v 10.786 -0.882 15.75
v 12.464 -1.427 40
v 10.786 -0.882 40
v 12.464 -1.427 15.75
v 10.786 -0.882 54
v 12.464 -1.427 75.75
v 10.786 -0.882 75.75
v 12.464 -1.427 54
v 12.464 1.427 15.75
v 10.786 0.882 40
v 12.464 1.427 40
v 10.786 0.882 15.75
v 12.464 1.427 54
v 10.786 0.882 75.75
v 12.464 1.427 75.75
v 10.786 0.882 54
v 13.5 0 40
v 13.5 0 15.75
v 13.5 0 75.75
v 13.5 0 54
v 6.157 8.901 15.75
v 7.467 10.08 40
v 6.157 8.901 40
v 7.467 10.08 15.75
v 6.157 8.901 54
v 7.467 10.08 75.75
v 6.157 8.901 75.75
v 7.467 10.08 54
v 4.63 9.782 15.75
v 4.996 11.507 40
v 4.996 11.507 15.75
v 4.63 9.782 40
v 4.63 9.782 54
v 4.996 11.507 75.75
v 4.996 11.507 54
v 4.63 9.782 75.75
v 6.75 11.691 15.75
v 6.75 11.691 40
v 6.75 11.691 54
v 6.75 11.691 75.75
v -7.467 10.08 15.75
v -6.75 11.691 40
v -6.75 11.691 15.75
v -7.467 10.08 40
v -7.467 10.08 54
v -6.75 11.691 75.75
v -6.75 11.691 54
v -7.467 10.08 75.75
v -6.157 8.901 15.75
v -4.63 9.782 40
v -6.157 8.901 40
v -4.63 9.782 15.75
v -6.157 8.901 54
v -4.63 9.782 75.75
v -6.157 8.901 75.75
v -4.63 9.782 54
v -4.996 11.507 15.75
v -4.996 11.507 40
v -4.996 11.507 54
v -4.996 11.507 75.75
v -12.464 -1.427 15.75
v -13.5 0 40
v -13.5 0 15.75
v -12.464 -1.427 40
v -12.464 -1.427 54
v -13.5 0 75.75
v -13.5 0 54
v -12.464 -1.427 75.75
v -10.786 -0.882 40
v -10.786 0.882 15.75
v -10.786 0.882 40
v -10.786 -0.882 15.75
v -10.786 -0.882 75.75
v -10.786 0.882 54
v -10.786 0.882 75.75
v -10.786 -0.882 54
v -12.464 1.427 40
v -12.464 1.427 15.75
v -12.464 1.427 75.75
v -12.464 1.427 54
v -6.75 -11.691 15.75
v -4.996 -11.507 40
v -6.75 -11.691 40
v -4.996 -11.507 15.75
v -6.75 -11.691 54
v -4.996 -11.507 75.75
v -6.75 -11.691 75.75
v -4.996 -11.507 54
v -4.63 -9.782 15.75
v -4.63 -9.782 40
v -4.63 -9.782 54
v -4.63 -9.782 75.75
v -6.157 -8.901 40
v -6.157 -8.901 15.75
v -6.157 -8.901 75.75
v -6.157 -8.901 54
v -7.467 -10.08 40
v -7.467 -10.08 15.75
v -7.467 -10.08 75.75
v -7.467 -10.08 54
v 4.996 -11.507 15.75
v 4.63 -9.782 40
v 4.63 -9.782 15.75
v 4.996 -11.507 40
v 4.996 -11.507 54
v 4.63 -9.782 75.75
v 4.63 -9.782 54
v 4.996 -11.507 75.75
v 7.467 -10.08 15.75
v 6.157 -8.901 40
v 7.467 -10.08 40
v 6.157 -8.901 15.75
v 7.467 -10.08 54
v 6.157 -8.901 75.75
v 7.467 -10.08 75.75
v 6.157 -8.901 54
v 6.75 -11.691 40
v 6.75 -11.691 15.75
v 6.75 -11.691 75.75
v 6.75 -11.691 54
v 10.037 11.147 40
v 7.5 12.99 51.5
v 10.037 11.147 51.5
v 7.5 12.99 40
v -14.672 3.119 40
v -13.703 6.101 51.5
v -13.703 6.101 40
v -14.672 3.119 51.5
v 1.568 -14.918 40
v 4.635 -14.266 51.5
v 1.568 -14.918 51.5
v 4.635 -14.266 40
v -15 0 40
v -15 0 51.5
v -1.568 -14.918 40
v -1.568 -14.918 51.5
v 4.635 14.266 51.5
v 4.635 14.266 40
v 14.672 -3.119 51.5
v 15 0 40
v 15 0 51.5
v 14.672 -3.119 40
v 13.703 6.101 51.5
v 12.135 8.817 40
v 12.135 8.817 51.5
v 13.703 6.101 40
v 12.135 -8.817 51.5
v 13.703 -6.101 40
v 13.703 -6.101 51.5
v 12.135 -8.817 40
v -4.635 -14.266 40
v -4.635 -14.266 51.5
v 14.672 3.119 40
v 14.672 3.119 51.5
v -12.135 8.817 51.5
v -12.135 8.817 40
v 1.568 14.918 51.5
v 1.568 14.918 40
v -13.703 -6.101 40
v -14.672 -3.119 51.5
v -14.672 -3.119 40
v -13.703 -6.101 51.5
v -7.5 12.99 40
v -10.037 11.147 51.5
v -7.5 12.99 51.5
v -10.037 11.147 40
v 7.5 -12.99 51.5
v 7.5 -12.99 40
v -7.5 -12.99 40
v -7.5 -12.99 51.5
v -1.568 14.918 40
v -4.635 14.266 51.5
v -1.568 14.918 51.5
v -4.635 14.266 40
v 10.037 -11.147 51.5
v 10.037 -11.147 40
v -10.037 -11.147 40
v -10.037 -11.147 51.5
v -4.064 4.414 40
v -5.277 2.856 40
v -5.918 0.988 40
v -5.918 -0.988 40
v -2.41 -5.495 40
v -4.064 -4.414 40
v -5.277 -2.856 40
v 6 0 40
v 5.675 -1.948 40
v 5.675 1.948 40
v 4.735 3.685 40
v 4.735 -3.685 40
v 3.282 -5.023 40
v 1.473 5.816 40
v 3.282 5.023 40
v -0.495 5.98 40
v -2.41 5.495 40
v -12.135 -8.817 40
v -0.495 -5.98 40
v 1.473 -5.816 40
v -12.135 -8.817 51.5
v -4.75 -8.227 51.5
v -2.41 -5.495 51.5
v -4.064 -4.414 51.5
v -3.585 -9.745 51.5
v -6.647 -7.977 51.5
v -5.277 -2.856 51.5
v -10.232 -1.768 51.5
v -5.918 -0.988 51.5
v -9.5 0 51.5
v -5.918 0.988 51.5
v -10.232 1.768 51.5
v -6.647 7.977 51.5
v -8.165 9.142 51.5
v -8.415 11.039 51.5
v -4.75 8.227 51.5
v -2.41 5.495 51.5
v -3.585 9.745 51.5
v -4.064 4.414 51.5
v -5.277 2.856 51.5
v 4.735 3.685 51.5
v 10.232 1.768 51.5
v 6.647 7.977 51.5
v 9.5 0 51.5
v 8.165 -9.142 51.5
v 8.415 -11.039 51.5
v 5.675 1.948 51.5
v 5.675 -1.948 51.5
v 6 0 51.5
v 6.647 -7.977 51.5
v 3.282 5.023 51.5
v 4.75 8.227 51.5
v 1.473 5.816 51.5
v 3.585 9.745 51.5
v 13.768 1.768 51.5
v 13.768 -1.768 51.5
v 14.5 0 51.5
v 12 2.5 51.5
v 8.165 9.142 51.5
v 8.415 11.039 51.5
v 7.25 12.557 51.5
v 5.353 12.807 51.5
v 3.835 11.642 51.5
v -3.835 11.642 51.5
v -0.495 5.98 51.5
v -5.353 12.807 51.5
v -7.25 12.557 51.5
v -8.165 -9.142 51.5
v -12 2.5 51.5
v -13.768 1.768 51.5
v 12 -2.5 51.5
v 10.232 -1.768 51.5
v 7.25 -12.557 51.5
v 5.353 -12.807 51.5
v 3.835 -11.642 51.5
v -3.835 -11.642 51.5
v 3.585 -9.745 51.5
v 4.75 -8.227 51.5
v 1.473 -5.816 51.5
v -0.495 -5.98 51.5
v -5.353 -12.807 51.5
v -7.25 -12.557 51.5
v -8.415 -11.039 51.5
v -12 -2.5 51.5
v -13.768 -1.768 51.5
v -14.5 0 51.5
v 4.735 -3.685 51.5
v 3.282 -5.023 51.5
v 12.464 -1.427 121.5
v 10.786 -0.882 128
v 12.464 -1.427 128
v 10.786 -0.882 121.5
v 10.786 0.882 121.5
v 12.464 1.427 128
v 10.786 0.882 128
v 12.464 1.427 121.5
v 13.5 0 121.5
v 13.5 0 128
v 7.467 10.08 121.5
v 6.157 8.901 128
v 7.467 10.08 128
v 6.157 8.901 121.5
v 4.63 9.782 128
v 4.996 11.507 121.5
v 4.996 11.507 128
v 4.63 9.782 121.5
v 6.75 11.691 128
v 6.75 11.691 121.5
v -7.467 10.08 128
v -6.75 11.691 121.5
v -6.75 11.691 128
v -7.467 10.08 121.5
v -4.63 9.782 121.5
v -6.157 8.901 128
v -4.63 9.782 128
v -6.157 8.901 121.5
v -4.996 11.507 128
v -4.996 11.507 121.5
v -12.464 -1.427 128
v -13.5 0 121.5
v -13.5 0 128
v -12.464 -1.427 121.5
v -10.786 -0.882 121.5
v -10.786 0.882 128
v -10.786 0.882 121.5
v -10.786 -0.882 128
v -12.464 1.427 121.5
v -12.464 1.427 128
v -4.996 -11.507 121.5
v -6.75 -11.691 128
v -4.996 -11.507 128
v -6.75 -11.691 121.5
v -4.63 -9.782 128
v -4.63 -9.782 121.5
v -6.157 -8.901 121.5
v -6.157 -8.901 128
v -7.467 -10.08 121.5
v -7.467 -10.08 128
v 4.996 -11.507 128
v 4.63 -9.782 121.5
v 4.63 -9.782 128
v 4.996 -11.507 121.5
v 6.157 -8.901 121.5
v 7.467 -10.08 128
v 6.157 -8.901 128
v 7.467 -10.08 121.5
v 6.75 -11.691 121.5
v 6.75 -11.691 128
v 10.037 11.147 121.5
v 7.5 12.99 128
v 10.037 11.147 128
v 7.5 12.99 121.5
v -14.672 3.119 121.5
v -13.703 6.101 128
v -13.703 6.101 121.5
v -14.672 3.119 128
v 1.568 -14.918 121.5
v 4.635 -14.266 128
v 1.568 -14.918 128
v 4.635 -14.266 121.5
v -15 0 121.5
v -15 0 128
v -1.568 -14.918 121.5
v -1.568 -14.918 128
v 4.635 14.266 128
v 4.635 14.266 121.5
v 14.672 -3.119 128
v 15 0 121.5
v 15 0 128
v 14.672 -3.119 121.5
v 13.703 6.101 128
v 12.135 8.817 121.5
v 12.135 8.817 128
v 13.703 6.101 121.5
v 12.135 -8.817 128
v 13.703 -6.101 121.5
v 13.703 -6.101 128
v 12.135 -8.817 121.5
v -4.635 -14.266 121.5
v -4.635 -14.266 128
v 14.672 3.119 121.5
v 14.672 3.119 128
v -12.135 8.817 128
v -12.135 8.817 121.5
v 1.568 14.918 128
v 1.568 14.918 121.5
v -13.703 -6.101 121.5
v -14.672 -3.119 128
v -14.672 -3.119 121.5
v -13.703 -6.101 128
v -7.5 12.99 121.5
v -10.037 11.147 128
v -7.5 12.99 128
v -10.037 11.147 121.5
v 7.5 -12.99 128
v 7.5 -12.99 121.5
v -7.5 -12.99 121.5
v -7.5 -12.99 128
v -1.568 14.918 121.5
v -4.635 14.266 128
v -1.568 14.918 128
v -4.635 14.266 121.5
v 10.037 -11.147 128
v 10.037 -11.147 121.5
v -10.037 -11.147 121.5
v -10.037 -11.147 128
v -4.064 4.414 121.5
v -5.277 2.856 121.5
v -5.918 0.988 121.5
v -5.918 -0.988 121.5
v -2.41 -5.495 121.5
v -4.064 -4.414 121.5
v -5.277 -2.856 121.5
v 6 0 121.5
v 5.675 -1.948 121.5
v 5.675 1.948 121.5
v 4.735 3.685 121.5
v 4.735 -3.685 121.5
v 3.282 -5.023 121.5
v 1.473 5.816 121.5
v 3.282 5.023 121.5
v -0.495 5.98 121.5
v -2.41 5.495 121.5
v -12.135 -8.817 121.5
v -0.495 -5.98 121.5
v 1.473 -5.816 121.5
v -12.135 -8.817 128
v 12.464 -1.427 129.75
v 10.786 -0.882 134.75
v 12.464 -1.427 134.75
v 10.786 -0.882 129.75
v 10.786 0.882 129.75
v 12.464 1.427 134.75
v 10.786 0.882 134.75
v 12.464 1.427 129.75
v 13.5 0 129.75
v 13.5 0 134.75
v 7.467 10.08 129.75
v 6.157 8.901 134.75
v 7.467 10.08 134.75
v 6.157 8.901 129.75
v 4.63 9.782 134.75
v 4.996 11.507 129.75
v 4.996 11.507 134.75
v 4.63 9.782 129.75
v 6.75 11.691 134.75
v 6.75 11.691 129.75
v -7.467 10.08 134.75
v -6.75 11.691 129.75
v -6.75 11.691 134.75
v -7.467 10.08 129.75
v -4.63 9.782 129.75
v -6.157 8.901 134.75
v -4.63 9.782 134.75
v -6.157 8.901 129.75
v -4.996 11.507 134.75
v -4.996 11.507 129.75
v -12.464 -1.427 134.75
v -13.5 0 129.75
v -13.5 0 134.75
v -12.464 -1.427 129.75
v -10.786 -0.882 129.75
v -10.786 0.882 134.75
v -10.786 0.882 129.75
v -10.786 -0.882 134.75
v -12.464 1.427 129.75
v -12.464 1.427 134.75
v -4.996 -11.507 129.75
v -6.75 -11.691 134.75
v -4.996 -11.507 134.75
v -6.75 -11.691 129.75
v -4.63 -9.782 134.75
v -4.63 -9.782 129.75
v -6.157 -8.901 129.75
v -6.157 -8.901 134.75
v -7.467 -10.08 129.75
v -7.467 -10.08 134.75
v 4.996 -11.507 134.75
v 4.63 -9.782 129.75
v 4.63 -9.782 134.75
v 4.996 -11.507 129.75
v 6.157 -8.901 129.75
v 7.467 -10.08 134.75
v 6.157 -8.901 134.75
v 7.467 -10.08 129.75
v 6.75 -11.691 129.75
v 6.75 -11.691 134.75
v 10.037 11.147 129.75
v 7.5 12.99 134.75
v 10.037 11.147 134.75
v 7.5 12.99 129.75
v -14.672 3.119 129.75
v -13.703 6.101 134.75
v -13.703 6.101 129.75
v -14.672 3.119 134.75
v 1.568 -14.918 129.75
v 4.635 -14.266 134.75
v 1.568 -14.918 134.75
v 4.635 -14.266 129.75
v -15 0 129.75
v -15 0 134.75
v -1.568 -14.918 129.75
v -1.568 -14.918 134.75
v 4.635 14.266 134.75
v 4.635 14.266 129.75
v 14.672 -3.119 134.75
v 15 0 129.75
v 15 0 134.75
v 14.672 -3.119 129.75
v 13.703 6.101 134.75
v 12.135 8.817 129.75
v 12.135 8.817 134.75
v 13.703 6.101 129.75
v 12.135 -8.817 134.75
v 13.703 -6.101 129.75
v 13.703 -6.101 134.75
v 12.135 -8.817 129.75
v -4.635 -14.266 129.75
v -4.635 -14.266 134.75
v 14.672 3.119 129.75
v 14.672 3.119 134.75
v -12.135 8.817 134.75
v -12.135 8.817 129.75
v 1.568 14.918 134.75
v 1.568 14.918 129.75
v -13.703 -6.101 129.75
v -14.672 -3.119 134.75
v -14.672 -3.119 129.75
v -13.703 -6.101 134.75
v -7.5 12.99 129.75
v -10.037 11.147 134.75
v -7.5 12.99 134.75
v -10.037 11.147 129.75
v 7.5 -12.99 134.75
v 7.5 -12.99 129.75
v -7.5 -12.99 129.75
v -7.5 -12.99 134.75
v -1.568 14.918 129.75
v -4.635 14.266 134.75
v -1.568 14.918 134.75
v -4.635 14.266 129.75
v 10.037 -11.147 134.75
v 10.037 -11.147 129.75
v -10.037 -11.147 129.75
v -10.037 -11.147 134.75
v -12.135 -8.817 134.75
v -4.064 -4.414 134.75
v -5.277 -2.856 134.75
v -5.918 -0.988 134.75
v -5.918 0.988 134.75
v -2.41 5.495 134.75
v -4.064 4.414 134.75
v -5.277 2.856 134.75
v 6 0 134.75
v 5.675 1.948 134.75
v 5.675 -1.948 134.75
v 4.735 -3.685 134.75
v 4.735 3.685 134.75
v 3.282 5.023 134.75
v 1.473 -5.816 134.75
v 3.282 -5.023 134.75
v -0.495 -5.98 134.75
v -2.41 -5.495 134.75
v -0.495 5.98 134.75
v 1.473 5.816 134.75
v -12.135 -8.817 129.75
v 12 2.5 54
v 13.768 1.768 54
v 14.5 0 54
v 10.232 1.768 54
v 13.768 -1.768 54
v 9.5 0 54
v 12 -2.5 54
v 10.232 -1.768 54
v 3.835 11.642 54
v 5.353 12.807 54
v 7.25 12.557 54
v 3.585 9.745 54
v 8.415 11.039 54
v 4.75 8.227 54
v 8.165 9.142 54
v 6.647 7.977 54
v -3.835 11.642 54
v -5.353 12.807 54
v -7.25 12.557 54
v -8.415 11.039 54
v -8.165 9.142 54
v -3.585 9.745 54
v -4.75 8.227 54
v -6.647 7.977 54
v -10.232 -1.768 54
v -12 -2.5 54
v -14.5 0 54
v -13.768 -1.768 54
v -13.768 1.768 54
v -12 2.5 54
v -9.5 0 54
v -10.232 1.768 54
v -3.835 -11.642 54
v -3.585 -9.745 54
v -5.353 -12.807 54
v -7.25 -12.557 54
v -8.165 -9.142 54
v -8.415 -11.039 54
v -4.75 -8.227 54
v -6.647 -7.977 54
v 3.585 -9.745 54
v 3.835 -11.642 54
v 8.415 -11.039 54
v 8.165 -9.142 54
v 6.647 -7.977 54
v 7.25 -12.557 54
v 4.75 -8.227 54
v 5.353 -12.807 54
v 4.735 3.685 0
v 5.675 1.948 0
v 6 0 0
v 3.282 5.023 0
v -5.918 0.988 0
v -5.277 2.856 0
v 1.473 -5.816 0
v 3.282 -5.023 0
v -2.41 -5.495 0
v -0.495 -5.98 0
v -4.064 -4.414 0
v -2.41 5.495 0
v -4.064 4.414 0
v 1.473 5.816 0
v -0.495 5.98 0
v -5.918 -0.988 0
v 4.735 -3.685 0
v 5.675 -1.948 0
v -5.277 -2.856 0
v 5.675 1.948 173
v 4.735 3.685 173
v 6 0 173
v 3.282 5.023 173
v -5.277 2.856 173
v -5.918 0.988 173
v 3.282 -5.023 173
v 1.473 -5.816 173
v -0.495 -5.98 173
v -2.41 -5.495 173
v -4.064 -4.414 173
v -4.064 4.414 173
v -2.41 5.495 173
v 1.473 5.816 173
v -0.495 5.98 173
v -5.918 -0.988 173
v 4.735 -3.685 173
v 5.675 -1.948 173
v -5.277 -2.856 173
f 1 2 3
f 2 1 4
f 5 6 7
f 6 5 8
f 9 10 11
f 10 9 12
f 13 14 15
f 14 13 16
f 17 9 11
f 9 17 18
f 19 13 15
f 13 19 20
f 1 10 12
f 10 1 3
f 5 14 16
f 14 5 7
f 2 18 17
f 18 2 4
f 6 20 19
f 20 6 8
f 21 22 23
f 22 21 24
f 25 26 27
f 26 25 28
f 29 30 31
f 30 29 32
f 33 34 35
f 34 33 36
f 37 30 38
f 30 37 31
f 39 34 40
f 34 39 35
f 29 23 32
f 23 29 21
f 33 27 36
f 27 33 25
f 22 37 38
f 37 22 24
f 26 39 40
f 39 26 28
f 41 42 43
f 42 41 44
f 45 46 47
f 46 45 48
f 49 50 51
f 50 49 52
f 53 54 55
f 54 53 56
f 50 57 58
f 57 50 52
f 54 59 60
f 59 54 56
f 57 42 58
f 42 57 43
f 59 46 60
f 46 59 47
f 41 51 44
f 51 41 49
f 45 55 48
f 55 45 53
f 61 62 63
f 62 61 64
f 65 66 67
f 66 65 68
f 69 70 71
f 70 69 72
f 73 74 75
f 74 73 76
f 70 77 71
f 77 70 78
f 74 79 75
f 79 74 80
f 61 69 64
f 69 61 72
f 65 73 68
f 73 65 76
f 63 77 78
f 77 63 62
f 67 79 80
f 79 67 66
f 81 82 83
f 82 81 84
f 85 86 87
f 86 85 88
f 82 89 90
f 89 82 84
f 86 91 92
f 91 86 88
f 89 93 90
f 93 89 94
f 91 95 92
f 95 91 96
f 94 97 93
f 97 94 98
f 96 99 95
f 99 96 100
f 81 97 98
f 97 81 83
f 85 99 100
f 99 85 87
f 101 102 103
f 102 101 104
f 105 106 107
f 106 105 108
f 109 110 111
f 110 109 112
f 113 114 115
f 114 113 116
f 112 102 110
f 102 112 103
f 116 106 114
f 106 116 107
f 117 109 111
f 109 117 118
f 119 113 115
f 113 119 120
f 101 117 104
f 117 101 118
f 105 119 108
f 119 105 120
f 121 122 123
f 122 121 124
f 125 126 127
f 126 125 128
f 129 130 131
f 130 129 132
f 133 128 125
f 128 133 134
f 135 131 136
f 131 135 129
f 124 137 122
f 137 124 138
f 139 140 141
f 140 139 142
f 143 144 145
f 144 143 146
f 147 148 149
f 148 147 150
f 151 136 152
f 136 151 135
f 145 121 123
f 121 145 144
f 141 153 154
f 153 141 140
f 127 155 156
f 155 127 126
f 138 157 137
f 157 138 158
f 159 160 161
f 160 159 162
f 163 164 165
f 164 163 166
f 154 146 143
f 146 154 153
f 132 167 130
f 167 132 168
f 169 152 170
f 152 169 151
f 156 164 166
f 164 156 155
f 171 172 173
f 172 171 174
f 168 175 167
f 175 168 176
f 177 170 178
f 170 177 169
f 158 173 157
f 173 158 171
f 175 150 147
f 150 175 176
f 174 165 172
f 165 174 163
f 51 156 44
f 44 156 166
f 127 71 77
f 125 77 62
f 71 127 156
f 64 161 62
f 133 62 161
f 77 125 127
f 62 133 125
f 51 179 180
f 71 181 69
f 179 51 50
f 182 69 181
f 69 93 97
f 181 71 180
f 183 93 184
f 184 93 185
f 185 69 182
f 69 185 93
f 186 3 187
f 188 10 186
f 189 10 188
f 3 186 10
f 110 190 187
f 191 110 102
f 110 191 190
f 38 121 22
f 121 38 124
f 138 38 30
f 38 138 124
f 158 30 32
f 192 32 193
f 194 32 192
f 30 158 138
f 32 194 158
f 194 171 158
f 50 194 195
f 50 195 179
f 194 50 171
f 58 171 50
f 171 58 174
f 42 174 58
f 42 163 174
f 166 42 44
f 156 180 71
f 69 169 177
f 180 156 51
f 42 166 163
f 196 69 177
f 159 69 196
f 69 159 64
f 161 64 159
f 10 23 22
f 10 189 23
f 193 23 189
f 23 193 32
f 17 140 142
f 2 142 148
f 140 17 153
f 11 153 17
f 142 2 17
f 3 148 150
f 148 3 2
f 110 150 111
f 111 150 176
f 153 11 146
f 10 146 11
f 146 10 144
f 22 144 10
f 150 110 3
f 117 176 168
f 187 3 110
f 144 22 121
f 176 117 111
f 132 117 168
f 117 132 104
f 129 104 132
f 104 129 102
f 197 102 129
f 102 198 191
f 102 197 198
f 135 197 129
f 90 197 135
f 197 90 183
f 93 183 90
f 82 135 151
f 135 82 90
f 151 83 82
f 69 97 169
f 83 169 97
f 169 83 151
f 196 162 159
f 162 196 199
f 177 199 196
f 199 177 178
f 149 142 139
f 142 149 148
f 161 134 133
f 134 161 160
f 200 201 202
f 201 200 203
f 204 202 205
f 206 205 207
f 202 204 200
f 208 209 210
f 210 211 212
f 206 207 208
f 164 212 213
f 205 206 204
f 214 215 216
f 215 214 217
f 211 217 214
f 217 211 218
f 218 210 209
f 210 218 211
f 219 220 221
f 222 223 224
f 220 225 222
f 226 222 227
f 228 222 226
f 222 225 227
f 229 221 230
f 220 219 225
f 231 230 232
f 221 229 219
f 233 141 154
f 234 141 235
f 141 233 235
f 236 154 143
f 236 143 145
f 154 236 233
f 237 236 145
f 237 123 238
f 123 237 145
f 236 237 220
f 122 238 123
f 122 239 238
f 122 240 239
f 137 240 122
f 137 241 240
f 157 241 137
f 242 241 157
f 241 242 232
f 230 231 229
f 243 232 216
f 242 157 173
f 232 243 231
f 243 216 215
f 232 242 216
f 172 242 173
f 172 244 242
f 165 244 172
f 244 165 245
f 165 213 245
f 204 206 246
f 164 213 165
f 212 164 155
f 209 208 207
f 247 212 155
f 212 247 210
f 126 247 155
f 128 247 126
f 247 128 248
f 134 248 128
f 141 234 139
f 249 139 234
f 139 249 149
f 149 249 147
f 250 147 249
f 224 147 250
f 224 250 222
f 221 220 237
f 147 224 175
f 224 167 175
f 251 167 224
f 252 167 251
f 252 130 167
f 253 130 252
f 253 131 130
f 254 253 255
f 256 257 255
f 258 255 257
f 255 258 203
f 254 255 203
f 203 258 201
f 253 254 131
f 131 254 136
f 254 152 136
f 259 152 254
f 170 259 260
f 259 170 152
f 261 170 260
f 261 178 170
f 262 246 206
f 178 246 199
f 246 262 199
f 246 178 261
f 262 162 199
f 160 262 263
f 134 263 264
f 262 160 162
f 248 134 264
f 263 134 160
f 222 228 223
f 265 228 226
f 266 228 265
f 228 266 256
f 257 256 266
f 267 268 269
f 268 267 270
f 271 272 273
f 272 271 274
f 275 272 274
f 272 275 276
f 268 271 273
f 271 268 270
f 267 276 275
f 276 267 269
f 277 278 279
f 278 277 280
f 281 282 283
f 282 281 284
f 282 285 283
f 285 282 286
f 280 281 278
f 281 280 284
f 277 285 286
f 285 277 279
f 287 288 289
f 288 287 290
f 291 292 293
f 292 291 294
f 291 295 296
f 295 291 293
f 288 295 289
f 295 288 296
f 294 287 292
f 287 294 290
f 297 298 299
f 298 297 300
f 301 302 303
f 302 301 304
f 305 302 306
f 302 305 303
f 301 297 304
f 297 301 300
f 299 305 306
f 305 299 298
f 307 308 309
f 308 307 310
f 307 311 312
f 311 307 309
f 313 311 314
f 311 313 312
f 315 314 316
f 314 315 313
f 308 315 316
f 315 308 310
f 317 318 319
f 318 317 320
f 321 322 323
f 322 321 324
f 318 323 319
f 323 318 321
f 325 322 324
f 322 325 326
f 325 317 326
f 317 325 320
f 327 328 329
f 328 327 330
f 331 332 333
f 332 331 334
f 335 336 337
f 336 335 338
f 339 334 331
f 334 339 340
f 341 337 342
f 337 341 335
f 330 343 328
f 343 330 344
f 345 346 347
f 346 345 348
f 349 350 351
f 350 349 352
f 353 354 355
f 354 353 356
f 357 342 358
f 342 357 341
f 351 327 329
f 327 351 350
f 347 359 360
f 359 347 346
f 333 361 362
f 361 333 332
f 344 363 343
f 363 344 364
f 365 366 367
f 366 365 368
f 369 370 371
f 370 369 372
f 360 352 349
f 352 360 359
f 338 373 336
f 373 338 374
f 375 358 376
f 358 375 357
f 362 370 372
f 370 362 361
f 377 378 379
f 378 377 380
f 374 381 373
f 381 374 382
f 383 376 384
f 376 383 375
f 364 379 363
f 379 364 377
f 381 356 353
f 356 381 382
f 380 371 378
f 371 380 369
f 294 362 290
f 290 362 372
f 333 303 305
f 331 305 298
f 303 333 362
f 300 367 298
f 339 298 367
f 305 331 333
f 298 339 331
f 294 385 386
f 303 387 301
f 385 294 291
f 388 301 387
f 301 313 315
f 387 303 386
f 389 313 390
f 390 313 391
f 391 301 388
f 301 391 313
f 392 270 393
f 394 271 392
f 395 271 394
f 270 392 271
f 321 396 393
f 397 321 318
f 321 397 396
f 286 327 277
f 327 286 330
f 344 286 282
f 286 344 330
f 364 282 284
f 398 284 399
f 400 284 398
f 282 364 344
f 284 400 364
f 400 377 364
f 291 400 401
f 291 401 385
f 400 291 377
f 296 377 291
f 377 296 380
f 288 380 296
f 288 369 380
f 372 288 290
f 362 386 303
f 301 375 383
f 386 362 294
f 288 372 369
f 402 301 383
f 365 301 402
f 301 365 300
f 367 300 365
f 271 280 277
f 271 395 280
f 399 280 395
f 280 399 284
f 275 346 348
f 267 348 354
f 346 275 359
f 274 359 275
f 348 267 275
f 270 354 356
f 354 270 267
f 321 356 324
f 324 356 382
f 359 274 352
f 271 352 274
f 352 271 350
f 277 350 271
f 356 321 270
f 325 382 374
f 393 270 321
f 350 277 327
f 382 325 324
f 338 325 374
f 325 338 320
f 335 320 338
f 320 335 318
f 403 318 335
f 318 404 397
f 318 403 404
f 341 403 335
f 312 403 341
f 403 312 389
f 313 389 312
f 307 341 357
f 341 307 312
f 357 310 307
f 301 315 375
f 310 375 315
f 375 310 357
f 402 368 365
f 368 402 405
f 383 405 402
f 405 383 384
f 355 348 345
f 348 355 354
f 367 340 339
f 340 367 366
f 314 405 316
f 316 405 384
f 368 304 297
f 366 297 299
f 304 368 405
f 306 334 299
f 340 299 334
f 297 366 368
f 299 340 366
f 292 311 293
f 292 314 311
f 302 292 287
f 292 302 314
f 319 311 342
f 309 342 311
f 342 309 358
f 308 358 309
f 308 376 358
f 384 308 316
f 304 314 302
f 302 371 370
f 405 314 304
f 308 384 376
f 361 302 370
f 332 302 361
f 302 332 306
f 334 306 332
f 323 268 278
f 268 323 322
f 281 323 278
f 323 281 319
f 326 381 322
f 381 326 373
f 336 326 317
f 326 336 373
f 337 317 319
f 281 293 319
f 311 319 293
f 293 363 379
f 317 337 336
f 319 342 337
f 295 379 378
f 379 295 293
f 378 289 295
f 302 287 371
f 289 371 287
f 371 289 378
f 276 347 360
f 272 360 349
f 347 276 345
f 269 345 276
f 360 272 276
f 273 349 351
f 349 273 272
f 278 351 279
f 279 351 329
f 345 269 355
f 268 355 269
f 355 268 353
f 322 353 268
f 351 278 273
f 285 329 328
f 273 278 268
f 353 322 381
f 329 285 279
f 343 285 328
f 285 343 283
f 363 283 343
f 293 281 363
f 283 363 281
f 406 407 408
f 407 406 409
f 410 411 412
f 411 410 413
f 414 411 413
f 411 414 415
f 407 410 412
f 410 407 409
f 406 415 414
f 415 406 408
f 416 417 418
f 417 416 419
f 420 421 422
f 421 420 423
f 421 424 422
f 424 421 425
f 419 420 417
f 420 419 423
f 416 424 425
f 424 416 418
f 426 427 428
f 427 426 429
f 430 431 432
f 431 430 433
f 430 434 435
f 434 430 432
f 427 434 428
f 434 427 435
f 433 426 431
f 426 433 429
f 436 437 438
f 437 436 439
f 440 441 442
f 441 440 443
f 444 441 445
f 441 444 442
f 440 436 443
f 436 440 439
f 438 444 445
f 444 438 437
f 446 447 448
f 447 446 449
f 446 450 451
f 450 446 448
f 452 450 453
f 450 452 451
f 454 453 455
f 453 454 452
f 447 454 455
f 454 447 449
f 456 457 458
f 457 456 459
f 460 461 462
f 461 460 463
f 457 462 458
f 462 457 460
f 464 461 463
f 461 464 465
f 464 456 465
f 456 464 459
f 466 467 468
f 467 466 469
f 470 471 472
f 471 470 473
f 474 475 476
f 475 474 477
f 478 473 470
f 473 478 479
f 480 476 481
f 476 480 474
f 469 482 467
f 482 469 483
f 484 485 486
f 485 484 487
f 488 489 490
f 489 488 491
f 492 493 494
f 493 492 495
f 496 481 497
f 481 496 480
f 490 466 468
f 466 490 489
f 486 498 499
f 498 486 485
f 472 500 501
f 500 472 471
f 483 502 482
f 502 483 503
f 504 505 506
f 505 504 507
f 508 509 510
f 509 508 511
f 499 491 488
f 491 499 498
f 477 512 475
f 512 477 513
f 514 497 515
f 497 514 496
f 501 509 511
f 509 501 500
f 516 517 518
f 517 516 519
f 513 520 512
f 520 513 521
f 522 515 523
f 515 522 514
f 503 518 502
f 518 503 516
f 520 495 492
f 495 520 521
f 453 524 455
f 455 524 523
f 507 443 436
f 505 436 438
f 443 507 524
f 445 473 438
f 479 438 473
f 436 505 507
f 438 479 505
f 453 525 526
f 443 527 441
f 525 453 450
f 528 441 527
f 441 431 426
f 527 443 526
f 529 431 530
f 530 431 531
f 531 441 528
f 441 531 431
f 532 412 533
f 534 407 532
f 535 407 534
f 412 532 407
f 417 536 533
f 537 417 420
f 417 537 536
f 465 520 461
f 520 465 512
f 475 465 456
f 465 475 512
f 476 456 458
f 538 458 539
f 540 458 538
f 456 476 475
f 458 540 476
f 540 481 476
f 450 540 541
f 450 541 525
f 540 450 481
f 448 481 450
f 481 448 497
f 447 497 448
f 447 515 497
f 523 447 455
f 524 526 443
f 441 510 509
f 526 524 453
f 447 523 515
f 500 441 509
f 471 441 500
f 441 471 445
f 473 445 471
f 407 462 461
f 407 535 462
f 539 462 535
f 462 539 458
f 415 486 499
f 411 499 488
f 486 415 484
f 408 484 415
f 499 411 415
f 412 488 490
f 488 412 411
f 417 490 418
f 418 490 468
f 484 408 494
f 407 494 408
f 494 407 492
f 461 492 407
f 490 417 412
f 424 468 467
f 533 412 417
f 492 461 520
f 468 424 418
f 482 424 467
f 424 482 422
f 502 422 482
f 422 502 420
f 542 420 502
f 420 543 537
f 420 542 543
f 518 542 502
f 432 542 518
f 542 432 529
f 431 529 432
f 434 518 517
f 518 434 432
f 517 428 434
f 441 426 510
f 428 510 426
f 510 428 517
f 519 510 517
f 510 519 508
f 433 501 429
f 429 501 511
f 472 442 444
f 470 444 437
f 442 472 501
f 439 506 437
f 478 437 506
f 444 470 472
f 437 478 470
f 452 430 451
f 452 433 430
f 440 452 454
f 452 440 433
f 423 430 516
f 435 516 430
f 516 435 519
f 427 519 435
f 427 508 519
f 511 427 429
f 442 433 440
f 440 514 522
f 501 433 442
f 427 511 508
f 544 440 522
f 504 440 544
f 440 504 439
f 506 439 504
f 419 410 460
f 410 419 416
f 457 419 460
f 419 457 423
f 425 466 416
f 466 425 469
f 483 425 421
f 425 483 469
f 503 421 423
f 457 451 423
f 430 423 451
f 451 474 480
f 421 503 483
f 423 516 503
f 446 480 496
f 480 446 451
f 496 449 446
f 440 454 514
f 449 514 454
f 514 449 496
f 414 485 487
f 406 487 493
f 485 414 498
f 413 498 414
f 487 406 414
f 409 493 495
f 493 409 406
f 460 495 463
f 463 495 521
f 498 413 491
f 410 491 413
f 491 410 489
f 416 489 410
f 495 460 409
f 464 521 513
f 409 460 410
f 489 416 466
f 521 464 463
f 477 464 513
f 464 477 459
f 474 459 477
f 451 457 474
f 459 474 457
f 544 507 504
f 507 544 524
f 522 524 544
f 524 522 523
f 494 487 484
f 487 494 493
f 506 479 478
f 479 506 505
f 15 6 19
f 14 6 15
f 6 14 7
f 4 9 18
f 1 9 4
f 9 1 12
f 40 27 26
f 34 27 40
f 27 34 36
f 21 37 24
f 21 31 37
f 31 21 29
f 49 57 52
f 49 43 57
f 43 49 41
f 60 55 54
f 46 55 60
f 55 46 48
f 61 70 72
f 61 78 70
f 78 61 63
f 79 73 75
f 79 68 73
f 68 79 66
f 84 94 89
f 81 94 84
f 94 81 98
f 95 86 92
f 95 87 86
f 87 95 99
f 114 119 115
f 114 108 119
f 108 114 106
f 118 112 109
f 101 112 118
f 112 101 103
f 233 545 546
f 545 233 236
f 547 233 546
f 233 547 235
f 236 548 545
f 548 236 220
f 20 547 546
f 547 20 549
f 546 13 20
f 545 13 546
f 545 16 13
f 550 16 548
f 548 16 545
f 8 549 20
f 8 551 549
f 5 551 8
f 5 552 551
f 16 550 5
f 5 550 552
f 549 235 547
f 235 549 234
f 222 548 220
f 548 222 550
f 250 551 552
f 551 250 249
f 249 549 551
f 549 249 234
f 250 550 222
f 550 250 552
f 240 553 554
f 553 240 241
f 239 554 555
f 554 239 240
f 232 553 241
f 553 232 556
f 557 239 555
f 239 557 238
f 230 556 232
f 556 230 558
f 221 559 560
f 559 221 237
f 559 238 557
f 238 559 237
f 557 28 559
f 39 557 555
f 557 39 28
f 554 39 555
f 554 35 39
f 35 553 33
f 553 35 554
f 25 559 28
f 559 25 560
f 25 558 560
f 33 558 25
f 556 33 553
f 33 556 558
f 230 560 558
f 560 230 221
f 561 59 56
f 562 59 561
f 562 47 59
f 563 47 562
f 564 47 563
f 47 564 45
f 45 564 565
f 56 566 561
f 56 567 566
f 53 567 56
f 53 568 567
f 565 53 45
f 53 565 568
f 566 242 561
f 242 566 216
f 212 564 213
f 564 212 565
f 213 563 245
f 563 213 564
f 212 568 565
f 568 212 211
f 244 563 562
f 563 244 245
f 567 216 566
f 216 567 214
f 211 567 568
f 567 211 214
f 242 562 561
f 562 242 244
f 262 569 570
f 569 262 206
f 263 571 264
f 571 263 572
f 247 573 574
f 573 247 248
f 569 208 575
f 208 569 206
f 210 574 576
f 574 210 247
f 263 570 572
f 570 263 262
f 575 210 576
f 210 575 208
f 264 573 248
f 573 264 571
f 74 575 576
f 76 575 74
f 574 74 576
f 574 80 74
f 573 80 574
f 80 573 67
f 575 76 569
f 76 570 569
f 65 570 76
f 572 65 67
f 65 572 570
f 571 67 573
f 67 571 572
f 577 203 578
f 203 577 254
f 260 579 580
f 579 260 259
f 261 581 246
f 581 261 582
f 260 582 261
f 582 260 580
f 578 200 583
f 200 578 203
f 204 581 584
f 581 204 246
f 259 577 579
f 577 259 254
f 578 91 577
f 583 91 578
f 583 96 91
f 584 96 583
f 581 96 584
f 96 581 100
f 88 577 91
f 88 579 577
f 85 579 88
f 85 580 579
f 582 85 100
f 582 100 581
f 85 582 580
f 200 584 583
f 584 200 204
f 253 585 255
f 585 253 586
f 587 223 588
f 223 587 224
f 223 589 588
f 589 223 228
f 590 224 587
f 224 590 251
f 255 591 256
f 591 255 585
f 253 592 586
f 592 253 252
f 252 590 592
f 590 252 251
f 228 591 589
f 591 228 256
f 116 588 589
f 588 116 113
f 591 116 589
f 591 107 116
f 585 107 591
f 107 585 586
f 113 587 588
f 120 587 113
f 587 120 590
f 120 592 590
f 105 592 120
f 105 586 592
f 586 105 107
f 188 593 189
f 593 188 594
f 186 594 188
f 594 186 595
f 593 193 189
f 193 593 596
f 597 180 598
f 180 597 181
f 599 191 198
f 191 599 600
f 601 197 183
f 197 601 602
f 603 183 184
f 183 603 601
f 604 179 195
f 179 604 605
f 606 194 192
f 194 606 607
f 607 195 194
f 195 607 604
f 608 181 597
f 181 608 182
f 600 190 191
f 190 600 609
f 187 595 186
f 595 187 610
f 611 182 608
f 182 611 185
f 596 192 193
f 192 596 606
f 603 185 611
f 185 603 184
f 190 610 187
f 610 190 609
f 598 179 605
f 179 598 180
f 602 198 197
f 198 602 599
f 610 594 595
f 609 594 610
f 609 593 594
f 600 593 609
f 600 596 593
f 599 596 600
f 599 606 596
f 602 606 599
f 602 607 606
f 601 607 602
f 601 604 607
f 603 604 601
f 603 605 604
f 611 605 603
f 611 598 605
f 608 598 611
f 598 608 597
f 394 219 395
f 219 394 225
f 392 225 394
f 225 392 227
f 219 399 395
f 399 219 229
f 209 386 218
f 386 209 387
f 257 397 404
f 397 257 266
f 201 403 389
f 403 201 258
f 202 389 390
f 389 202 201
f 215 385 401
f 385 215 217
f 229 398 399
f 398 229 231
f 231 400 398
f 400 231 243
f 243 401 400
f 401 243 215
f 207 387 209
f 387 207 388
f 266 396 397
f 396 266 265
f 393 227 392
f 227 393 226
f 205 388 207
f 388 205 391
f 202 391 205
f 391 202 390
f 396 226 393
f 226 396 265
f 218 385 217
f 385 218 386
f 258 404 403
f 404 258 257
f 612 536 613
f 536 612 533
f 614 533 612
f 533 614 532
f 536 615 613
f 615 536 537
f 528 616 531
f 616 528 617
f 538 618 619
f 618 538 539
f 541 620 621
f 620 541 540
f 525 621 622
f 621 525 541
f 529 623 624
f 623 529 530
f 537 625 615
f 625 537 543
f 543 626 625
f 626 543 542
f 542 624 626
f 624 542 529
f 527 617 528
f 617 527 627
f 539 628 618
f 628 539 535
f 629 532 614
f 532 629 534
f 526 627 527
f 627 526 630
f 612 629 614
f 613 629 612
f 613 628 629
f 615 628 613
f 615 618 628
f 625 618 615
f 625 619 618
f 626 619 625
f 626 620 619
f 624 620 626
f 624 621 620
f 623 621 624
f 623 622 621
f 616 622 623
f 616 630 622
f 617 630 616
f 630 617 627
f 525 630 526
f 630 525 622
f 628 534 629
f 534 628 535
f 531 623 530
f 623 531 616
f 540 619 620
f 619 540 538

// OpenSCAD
// Parameters
shaft_diameter = 12; // Updated diameter of shafts (input/output)
shaft_length = 40; // Length of input/output shafts
central_shaft_length = 70; // Updated length of central shaft
flange_diameter = 30; // Diameter of flange plates
flange_thickness = 5; // Thickness of flange plates
spacer_ring_diameter = 30; // Diameter of spacer rings
spacer_ring_thickness = 1.5; // Updated thickness of spacer rings
bolt_diameter = 3; // Diameter of bolts
bolt_length = 60; // Updated length of bolts
nut_diameter = 5; // Updated diameter of nuts
nut_thickness = 2.5; // Updated thickness of nuts
bolt_hole_radius = 12; // Radius of bolt hole circle

// Helper function to create a bolt hole pattern
module bolt_holes(num_holes, radius) {
    for (i = [0:num_holes-1]) {
        rotate([0, 0, i * 360 / num_holes])
        translate([radius, 0, 0])
        cylinder(r=bolt_diameter/2, h=flange_thickness + spacer_ring_thickness, center=true);
    }
}

// Input Shaft
translate([0, 0, shaft_length/2])
cylinder(r=shaft_diameter/2, h=shaft_length, center=true);

// Flange Plate 1
translate([0, 0, shaft_length + flange_thickness/2])
difference() {
    cylinder(r=flange_diameter/2, h=flange_thickness, center=true);
    bolt_holes(6, bolt_hole_radius); // Updated number of bolt holes
}

// Spacer Ring 1
translate([0, 0, shaft_length + flange_thickness + spacer_ring_thickness/2])
difference() {
    cylinder(r=spacer_ring_diameter/2, h=spacer_ring_thickness, center=true);
    bolt_holes(6, bolt_hole_radius); // Updated number of bolt holes
}

// Flange Plate 2
translate([0, 0, shaft_length + flange_thickness + spacer_ring_thickness + flange_thickness/2])
difference() {
    cylinder(r=flange_diameter/2, h=flange_thickness, center=true);
    bolt_holes(6, bolt_hole_radius); // Updated number of bolt holes
}

// Central Shaft
translate([0, 0, shaft_length + flange_thickness*2 + spacer_ring_thickness + central_shaft_length/2])
cylinder(r=shaft_diameter/2, h=central_shaft_length, center=true);

// Flange Plate 3
translate([0, 0, shaft_length + flange_thickness*2 + spacer_ring_thickness + central_shaft_length + flange_thickness/2])
difference() {
    cylinder(r=flange_diameter/2, h=flange_thickness, center=true);
    bolt_holes(6, bolt_hole_radius); // Updated number of bolt holes
}

// Spacer Ring 2
translate([0, 0, shaft_length + flange_thickness*2 + spacer_ring_thickness + central_shaft_length + flange_thickness + spacer_ring_thickness/2])
difference() {
    cylinder(r=spacer_ring_diameter/2, h=spacer_ring_thickness, center=true);
    bolt_holes(6, bolt_hole_radius); // Updated number of bolt holes
}

// Flange Plate 4
translate([0, 0, shaft_length + flange_thickness*2 + spacer_ring_thickness + central_shaft_length + flange_thickness*2 + spacer_ring_thickness/2])
difference() {
    cylinder(r=flange_diameter/2, h=flange_thickness, center=true);
    bolt_holes(6, bolt_hole_radius); // Updated number of bolt holes
}

// Output Shaft
translate([0, 0, shaft_length + flange_thickness*2 + spacer_ring_thickness + central_shaft_length + flange_thickness*2 + spacer_ring_thickness + shaft_length/2])
cylinder(r=shaft_diameter/2, h=shaft_length, center=true);

// Bolts
for (i = [0:5]) { // Updated number of bolts
    rotate([0, 0, i * 360 / 6])
    translate([bolt_hole_radius, 0, shaft_length + flange_thickness + spacer_ring_thickness/2])
    cylinder(r=bolt_diameter/2, h=bolt_length, center=true);
}

// Nuts
for (i = [0:5]) { // Updated number of nuts
    rotate([0, 0, i * 360 / 6])
    translate([bolt_hole_radius, 0, shaft_length + flange_thickness + spacer_ring_thickness + flange_thickness + nut_thickness/2])
    cylinder(r=nut_diameter/2, h=nut_thickness, center=true);
}
